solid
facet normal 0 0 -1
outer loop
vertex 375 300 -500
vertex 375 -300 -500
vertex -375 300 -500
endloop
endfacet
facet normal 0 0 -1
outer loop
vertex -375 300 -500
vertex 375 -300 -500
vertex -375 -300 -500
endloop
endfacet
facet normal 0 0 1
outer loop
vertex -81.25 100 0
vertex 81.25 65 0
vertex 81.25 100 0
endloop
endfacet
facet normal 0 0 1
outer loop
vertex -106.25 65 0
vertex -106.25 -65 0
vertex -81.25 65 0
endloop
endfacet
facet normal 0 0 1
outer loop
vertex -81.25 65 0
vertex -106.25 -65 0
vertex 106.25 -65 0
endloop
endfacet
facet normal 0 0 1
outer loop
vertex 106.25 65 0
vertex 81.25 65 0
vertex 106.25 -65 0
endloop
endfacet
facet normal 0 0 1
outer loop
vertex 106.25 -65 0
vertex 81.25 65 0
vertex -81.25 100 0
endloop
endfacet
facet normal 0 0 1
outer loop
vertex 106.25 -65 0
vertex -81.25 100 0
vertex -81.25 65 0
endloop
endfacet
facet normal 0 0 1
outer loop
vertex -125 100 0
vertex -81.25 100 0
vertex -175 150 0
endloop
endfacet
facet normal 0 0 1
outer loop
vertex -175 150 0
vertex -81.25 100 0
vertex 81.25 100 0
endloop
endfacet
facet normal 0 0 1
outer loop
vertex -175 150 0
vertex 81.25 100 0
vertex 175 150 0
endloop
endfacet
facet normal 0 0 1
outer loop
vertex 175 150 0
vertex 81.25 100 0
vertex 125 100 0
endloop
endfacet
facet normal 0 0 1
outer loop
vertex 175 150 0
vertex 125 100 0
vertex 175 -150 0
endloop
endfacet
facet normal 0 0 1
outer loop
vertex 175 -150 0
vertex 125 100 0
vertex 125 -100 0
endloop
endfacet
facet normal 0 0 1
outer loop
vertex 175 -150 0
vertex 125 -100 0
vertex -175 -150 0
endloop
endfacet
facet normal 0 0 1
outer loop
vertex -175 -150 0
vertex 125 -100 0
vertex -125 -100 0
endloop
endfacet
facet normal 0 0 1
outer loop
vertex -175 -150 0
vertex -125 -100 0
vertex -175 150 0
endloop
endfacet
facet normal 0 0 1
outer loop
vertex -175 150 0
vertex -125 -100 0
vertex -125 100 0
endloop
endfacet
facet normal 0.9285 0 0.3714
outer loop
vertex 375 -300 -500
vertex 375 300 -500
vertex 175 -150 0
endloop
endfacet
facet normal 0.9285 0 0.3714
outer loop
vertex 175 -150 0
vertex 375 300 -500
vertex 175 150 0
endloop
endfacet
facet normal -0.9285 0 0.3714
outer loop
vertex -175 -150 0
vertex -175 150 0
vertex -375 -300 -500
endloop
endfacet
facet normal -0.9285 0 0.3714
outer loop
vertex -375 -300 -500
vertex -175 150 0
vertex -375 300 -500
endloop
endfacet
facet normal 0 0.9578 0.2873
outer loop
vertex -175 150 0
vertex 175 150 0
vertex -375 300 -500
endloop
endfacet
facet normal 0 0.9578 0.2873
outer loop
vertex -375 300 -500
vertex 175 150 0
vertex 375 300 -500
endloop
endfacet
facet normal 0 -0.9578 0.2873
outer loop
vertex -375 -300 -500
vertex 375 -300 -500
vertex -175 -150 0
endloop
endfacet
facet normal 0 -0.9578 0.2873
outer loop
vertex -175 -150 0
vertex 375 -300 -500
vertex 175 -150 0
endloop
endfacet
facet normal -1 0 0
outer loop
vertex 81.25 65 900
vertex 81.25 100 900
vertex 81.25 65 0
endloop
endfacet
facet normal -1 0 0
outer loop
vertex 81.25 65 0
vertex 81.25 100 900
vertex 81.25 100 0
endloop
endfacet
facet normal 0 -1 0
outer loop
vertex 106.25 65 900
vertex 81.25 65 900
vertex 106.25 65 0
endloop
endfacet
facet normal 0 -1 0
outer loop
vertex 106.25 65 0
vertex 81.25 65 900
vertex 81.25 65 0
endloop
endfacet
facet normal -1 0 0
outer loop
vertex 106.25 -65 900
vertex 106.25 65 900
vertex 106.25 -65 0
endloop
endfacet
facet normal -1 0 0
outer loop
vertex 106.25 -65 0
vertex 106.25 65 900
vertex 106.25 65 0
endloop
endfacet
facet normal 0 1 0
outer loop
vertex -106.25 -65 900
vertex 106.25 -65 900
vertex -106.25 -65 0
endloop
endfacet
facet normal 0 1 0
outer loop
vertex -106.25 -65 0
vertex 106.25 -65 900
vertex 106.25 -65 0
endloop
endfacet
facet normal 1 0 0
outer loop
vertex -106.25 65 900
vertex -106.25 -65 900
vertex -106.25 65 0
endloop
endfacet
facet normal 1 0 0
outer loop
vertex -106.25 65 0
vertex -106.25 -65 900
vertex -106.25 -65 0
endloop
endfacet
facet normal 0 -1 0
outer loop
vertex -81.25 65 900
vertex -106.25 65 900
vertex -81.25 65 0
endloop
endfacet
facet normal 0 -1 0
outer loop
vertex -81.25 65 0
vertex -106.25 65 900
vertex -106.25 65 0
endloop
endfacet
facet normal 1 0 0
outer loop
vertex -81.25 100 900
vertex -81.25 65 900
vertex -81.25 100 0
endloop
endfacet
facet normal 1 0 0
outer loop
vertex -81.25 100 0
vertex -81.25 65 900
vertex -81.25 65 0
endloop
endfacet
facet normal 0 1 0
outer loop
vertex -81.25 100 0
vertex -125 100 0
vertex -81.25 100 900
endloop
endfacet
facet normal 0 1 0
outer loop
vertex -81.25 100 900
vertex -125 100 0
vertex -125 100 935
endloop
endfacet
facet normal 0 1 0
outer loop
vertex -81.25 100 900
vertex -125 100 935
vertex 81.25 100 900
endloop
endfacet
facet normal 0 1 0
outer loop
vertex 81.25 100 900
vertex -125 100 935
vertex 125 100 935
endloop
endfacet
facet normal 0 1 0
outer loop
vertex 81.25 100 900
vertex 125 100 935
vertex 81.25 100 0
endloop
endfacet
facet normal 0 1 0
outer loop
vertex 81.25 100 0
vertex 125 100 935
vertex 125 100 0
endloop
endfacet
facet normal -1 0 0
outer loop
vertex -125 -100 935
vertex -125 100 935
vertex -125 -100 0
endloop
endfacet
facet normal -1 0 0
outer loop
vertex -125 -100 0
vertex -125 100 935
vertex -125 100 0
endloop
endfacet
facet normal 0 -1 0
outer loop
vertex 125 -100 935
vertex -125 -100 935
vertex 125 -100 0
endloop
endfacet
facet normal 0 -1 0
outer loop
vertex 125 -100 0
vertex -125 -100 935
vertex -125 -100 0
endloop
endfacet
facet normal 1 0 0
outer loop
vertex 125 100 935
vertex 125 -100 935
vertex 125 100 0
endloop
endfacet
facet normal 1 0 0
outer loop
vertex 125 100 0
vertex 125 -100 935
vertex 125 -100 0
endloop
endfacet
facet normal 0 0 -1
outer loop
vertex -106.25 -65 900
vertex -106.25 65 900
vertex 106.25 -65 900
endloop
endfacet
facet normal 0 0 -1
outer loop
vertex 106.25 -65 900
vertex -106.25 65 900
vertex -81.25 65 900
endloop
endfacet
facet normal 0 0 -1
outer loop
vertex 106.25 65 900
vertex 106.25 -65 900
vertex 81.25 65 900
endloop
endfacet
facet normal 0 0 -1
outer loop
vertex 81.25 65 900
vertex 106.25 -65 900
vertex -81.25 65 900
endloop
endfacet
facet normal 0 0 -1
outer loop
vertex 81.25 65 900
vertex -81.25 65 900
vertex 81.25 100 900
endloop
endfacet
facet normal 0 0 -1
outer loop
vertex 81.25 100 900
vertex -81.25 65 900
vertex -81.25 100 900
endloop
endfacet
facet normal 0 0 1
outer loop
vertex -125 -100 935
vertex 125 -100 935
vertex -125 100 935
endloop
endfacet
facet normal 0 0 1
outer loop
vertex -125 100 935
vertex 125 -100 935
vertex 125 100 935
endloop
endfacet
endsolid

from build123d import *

# Parameters (mm, degrees)
SKETCH2_W           = 750
SKETCH2_H           = 600
BOSS_EXTRUDE1_DEPTH = 500
CUT_EXTRUDE2_DEPTH  = 867.386172558
CUT_EXTRUDE3_DEPTH  = 951
BOSS_EXTRUDE2_DEPTH = 900
SKETCH6_W           = 35
SKETCH6_H           = 200
BOSS_EXTRUDE3_DEPTH = 250


with BuildPart() as part:
    # Sketch2 → Boss-Extrude1 (new body)
    with BuildSketch(Plane.XY):
        Rectangle(SKETCH2_W, SKETCH2_H)
    extrude(amount=-BOSS_EXTRUDE1_DEPTH)

    # Sketch3 → Cut-Extrude2 (cut, through all)
    with BuildSketch(Plane.XZ.offset(300)):
        Polygon((-375, -500), (-375, 0), (-175, 0), align=None)
        Polygon((375, 0), (175, 0), (375, -500), align=None)
    extrude(amount=-CUT_EXTRUDE2_DEPTH, mode=Mode.SUBTRACT)

    # Sketch4 → Cut-Extrude3 (cut, through all)
    with BuildSketch(Plane(origin=(375, 0, 0), x_dir=(0, 0, -1), z_dir=(1, 0, 0))):
        Polygon((500, -300), (0, -300), (0, -150), align=None)
        Polygon((0, 300), (0, 150), (500, 300), align=None)
    extrude(amount=-CUT_EXTRUDE3_DEPTH, mode=Mode.SUBTRACT)

    # Sketch5 → Boss-Extrude2 (add)
    with BuildSketch(Plane.XY):
        Polygon((-81.25, 65), (-81.25, 100), (-125, 100), (-125, -100), (-81.25, -100), (81.25, -100), (125, -100), (125, 100), (81.25, 100), (81.25, 65), (106.25, 65), (106.25, -65), (81.25, -65), (-81.25, -65), (-106.25, -65), (-106.25, 65), align=None)
    extrude(amount=BOSS_EXTRUDE2_DEPTH)

    # Sketch6 → Boss-Extrude3 (add)
    with BuildSketch(Plane(origin=(125, 0, 0), x_dir=(0, 0, -1), z_dir=(1, 0, 0))):
        with Locations((-917.5, 0)):
            Rectangle(SKETCH6_W, SKETCH6_H)
    extrude(amount=-BOSS_EXTRUDE3_DEPTH)


solid = part.part
